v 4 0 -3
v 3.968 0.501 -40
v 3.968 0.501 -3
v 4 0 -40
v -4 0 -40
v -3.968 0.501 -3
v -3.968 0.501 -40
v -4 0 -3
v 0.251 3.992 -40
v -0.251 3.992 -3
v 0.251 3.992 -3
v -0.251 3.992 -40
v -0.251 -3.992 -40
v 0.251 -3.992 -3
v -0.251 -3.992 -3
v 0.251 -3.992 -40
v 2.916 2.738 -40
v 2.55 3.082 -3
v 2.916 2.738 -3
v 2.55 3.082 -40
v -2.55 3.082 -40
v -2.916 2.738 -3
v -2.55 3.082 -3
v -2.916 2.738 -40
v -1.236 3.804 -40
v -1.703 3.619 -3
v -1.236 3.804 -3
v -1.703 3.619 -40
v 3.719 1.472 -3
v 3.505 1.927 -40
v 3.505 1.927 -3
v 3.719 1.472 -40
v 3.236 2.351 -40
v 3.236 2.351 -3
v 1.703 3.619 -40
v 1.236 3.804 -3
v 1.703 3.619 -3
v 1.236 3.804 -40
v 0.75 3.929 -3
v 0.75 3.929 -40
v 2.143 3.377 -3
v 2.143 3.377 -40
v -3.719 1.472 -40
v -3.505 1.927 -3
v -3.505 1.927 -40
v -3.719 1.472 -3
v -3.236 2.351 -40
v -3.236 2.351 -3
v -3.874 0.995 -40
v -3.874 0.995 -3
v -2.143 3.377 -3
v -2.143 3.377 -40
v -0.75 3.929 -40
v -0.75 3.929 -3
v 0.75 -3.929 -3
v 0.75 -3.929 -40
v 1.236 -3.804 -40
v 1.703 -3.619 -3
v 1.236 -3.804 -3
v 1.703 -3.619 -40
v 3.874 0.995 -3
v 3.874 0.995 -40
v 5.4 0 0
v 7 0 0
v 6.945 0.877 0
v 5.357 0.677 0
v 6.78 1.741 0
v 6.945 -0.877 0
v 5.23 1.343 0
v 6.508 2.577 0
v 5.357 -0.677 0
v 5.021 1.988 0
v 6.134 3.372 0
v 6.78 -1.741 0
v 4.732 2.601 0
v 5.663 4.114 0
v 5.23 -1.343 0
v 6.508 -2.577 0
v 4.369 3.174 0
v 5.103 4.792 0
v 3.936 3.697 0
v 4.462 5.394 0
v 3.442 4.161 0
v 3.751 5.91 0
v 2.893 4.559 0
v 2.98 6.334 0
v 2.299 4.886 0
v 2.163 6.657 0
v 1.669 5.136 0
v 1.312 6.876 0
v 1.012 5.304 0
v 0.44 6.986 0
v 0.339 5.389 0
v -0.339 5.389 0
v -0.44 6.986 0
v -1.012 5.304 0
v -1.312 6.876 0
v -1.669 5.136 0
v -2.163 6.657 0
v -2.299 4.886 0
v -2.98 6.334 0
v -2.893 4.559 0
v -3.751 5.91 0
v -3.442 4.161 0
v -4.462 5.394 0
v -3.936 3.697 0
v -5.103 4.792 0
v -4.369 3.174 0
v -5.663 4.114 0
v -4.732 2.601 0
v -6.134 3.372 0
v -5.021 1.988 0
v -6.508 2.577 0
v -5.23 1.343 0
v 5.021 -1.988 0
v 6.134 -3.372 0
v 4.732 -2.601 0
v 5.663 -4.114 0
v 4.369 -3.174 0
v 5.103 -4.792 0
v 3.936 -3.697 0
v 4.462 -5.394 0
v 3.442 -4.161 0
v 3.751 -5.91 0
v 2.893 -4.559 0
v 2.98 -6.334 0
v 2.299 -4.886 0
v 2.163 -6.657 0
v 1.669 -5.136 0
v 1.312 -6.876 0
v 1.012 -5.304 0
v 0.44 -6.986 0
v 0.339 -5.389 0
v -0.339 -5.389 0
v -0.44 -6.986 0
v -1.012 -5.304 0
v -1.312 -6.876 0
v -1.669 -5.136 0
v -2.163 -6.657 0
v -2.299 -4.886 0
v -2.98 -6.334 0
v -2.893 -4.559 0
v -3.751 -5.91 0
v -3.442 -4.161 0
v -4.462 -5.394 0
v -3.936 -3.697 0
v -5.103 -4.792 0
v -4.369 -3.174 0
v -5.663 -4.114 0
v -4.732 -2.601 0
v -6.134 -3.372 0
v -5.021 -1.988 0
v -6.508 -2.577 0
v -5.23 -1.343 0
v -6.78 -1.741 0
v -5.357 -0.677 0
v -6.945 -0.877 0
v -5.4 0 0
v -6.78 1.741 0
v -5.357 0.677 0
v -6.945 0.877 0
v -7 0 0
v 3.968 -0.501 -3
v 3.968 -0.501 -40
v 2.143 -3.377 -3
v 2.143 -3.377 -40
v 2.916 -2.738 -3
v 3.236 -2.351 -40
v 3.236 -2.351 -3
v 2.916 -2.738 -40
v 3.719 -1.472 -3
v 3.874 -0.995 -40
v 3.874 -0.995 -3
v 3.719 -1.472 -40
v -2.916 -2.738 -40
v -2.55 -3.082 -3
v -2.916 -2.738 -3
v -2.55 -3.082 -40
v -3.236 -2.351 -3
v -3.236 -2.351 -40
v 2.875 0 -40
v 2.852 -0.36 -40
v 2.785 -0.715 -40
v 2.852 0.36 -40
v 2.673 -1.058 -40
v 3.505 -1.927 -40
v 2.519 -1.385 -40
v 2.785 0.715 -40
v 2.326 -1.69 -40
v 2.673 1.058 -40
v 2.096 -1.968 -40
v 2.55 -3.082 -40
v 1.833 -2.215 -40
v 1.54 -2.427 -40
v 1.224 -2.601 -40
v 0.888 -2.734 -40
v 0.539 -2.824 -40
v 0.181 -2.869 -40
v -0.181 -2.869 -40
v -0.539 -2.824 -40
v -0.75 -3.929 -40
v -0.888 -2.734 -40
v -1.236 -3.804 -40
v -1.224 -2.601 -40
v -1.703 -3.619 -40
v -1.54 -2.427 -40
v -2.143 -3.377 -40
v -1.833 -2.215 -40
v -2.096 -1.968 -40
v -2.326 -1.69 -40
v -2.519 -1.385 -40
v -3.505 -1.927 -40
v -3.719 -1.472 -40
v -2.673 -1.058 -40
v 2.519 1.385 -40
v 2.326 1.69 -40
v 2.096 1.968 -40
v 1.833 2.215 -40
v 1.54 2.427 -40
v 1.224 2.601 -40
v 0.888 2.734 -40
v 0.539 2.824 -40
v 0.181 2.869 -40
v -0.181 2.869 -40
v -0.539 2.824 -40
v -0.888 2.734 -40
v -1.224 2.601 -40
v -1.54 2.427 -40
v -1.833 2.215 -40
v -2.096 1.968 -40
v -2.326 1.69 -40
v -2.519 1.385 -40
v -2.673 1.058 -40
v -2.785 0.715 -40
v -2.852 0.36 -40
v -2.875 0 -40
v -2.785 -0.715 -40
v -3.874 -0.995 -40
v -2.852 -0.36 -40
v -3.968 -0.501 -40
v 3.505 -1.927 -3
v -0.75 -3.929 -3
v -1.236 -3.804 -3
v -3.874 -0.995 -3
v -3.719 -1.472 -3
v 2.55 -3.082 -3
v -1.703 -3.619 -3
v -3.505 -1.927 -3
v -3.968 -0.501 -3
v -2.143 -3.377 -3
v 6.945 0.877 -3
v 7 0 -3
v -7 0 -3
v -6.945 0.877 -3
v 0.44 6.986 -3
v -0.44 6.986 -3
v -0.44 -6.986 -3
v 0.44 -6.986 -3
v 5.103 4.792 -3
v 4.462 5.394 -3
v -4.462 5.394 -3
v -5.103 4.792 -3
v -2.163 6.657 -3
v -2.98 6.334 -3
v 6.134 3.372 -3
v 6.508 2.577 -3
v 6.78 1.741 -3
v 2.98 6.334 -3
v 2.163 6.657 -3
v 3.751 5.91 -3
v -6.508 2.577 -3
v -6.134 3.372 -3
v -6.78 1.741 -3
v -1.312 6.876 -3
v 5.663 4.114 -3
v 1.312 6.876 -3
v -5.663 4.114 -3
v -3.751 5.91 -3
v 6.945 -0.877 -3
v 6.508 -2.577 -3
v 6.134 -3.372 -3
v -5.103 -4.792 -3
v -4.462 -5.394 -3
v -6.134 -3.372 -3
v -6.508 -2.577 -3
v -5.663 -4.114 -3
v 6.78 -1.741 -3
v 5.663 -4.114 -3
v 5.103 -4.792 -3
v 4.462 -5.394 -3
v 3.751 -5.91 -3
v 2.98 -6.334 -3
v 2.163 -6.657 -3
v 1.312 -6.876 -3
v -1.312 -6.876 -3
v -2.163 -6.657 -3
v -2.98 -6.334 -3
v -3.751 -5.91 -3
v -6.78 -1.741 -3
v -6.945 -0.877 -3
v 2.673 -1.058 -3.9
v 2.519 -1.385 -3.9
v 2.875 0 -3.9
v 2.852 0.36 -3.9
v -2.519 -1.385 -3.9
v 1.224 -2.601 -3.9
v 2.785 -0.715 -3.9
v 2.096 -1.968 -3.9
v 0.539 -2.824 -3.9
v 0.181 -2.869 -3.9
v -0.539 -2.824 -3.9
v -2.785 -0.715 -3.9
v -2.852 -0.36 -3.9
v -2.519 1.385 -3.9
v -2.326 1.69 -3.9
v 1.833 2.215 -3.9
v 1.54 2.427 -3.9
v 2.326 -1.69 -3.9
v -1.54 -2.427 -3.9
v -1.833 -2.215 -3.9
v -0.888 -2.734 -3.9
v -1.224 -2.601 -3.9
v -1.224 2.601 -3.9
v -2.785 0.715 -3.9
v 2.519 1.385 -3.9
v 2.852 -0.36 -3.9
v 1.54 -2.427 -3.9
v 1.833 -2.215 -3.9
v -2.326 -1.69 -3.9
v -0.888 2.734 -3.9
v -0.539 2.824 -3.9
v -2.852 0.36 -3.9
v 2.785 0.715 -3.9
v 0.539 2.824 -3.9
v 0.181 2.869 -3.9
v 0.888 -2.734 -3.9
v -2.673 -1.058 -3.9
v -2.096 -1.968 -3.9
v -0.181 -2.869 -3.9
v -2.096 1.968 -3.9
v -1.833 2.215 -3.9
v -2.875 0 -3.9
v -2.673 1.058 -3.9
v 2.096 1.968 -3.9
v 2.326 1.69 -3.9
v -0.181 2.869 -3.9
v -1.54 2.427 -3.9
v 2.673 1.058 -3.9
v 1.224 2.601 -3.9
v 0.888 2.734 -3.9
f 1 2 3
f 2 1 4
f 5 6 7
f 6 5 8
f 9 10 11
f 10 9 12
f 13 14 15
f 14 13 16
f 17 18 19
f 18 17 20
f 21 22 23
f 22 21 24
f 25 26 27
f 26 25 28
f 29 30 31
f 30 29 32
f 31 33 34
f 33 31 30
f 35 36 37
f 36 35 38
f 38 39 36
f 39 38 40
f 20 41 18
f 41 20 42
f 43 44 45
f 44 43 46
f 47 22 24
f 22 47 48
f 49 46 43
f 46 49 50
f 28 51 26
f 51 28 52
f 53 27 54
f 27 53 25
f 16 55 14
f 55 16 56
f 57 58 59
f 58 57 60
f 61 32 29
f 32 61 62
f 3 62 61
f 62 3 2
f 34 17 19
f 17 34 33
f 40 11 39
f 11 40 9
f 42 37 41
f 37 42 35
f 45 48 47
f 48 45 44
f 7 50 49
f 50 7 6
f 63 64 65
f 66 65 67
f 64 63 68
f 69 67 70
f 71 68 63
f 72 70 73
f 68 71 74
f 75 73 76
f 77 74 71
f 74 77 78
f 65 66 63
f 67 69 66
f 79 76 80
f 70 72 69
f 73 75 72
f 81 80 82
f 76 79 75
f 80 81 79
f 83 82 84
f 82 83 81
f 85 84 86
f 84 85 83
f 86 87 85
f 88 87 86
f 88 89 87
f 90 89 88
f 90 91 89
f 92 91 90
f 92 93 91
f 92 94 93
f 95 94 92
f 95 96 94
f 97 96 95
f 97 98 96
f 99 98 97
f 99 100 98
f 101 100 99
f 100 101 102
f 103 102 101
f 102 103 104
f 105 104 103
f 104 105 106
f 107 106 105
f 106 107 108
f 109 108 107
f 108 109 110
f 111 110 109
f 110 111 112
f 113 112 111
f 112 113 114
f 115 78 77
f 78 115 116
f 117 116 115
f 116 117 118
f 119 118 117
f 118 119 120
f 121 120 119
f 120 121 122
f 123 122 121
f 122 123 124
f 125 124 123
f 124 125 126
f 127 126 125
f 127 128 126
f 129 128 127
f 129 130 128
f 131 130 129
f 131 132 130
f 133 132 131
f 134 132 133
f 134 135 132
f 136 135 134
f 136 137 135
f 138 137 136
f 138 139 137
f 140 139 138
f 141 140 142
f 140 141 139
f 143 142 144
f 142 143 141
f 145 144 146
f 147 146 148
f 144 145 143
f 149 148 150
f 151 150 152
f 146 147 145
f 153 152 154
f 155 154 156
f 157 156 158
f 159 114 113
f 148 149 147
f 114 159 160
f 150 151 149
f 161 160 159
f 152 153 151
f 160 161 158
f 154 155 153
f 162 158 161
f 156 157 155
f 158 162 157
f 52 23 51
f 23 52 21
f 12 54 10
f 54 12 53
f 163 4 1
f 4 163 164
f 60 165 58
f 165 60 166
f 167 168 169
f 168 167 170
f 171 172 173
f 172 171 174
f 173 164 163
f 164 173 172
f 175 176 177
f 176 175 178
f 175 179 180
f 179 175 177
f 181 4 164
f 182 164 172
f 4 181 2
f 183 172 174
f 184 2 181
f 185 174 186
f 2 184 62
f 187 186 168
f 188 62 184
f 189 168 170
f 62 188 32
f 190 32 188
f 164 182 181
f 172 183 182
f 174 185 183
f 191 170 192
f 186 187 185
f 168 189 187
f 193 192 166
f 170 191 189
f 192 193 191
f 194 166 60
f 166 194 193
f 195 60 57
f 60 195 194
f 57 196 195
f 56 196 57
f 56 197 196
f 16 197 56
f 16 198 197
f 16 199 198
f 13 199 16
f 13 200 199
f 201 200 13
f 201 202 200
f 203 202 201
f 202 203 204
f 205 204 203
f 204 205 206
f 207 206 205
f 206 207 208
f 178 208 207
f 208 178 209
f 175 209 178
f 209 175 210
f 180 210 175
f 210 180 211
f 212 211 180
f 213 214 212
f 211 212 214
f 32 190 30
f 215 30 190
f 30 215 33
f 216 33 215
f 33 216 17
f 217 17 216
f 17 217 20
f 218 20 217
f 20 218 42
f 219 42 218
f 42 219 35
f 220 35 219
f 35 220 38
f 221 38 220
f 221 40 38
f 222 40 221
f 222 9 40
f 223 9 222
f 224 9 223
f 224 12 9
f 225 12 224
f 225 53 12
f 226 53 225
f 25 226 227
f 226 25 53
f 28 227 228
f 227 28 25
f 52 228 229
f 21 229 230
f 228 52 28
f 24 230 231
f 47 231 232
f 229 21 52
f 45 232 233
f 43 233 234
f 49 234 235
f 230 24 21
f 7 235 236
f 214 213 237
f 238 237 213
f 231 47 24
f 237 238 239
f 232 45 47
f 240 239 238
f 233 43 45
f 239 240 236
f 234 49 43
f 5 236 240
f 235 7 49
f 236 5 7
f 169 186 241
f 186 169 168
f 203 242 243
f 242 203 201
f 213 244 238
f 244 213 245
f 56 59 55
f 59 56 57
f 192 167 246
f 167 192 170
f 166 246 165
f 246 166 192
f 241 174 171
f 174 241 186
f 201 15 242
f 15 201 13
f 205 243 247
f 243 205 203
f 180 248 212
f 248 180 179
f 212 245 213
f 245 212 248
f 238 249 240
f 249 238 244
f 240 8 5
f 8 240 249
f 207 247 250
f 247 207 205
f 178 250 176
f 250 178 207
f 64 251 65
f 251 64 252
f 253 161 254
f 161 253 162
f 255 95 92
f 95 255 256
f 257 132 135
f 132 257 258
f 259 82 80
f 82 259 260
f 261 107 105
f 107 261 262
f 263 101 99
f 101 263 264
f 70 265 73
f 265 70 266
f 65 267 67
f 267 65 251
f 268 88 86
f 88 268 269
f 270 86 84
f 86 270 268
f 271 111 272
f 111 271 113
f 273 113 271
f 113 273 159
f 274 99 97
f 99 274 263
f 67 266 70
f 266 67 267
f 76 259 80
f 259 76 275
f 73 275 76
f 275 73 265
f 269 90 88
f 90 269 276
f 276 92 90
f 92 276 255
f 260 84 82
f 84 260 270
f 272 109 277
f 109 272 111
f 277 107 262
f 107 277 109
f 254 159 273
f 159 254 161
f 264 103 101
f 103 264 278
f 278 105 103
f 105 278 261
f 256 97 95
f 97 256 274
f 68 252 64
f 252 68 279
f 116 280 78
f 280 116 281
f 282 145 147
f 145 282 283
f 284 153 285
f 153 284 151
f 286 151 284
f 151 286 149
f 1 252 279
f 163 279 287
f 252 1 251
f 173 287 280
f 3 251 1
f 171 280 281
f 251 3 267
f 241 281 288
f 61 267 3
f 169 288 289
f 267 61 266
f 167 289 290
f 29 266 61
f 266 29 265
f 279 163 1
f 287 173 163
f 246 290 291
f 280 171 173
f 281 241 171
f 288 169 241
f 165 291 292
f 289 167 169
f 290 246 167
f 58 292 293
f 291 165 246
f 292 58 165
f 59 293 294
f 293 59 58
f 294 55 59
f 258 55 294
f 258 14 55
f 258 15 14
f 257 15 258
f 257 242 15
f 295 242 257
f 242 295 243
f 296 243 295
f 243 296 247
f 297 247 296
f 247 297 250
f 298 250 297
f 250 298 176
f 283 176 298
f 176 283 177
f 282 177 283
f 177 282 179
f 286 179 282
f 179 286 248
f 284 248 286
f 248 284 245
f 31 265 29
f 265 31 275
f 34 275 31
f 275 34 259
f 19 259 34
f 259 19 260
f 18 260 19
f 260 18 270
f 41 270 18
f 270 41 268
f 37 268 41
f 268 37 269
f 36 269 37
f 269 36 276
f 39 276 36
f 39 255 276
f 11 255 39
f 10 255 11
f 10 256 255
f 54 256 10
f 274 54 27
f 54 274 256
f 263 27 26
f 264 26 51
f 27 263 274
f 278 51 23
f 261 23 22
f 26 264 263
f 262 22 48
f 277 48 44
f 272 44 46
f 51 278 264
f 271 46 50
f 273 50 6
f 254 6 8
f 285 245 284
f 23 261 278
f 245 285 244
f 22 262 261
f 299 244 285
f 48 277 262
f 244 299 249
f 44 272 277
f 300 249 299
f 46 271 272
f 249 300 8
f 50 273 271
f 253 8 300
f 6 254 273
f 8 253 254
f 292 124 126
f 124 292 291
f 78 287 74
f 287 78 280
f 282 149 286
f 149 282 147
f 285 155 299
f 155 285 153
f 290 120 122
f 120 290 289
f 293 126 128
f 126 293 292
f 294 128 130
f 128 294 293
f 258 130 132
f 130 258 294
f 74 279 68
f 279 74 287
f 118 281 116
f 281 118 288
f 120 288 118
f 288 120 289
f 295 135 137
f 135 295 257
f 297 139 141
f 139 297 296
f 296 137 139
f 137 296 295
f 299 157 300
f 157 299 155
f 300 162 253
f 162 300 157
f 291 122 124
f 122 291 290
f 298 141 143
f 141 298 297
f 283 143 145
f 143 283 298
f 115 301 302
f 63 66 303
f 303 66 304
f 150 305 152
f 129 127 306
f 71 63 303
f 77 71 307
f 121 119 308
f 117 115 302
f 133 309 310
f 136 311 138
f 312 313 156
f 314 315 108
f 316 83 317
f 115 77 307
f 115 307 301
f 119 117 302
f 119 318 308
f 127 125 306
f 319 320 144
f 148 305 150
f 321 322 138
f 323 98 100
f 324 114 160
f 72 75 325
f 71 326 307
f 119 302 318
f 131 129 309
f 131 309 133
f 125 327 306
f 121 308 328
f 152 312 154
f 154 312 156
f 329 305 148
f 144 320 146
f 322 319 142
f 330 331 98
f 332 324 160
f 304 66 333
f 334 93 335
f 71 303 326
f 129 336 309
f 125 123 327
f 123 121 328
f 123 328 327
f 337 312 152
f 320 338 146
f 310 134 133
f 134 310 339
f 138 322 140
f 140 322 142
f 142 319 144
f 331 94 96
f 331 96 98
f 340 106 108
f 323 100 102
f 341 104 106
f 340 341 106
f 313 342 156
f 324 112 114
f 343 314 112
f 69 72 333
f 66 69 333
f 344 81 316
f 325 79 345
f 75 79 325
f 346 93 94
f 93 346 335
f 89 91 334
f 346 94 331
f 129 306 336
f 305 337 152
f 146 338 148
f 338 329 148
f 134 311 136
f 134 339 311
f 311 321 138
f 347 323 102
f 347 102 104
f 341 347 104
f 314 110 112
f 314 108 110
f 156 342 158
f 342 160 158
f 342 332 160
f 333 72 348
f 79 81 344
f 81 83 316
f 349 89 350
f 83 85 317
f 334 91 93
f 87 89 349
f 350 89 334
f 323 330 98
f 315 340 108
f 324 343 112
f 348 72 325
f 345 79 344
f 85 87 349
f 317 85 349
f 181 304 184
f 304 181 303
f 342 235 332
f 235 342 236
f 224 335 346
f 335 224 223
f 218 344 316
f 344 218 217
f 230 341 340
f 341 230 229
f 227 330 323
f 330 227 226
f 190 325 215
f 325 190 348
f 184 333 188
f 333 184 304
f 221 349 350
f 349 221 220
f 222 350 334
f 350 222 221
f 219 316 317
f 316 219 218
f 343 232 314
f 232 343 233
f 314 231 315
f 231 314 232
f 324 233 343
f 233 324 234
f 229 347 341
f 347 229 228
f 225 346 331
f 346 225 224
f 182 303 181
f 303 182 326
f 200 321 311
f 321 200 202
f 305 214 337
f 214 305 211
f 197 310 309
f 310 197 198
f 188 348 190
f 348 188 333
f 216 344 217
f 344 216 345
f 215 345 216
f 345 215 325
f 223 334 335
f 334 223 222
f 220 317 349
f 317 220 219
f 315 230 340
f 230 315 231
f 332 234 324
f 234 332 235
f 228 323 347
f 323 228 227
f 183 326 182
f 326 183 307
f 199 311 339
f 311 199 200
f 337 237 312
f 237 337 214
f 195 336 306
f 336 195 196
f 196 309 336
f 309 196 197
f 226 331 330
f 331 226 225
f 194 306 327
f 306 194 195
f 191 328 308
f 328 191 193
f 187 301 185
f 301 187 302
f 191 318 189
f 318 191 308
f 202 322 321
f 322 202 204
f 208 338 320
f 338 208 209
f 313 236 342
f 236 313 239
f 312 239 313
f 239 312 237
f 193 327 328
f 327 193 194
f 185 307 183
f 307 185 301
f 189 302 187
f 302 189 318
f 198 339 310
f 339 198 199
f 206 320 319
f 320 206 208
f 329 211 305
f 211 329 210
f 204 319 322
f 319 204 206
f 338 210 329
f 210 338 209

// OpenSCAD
$fn = 50;


difference() {
	union() {
		translate(v = [0, 0, -40.0000000000]) {
			cylinder(h = 40, r = 4.0000000000);
		}
		translate(v = [0, 0, -3.0000000000]) {
			cylinder(h = 3, r = 7.0000000000);
		}
	}
	union() {
		translate(v = [0, 0, 0]) {
			rotate(a = [0, 0, 0]) {
				difference() {
					union() {
						#translate(v = [0, 0, -40.0000000000]) {
							cylinder(h = 40, r = 2.6000000000);
						}
						#translate(v = [0, 0, -3.9000000000]) {
							cylinder(h = 3.9000000000, r1 = 2.8750000000, r2 = 5.4000000000);
						}
						#translate(v = [0, 0, -40.0000000000]) {
							cylinder(h = 40, r = 2.8750000000);
						}
						#translate(v = [0, 0, -40.0000000000]) {
							cylinder(h = 40, r = 2.6000000000);
						}
					}
					union();
				}
			}
		}
	}
}
